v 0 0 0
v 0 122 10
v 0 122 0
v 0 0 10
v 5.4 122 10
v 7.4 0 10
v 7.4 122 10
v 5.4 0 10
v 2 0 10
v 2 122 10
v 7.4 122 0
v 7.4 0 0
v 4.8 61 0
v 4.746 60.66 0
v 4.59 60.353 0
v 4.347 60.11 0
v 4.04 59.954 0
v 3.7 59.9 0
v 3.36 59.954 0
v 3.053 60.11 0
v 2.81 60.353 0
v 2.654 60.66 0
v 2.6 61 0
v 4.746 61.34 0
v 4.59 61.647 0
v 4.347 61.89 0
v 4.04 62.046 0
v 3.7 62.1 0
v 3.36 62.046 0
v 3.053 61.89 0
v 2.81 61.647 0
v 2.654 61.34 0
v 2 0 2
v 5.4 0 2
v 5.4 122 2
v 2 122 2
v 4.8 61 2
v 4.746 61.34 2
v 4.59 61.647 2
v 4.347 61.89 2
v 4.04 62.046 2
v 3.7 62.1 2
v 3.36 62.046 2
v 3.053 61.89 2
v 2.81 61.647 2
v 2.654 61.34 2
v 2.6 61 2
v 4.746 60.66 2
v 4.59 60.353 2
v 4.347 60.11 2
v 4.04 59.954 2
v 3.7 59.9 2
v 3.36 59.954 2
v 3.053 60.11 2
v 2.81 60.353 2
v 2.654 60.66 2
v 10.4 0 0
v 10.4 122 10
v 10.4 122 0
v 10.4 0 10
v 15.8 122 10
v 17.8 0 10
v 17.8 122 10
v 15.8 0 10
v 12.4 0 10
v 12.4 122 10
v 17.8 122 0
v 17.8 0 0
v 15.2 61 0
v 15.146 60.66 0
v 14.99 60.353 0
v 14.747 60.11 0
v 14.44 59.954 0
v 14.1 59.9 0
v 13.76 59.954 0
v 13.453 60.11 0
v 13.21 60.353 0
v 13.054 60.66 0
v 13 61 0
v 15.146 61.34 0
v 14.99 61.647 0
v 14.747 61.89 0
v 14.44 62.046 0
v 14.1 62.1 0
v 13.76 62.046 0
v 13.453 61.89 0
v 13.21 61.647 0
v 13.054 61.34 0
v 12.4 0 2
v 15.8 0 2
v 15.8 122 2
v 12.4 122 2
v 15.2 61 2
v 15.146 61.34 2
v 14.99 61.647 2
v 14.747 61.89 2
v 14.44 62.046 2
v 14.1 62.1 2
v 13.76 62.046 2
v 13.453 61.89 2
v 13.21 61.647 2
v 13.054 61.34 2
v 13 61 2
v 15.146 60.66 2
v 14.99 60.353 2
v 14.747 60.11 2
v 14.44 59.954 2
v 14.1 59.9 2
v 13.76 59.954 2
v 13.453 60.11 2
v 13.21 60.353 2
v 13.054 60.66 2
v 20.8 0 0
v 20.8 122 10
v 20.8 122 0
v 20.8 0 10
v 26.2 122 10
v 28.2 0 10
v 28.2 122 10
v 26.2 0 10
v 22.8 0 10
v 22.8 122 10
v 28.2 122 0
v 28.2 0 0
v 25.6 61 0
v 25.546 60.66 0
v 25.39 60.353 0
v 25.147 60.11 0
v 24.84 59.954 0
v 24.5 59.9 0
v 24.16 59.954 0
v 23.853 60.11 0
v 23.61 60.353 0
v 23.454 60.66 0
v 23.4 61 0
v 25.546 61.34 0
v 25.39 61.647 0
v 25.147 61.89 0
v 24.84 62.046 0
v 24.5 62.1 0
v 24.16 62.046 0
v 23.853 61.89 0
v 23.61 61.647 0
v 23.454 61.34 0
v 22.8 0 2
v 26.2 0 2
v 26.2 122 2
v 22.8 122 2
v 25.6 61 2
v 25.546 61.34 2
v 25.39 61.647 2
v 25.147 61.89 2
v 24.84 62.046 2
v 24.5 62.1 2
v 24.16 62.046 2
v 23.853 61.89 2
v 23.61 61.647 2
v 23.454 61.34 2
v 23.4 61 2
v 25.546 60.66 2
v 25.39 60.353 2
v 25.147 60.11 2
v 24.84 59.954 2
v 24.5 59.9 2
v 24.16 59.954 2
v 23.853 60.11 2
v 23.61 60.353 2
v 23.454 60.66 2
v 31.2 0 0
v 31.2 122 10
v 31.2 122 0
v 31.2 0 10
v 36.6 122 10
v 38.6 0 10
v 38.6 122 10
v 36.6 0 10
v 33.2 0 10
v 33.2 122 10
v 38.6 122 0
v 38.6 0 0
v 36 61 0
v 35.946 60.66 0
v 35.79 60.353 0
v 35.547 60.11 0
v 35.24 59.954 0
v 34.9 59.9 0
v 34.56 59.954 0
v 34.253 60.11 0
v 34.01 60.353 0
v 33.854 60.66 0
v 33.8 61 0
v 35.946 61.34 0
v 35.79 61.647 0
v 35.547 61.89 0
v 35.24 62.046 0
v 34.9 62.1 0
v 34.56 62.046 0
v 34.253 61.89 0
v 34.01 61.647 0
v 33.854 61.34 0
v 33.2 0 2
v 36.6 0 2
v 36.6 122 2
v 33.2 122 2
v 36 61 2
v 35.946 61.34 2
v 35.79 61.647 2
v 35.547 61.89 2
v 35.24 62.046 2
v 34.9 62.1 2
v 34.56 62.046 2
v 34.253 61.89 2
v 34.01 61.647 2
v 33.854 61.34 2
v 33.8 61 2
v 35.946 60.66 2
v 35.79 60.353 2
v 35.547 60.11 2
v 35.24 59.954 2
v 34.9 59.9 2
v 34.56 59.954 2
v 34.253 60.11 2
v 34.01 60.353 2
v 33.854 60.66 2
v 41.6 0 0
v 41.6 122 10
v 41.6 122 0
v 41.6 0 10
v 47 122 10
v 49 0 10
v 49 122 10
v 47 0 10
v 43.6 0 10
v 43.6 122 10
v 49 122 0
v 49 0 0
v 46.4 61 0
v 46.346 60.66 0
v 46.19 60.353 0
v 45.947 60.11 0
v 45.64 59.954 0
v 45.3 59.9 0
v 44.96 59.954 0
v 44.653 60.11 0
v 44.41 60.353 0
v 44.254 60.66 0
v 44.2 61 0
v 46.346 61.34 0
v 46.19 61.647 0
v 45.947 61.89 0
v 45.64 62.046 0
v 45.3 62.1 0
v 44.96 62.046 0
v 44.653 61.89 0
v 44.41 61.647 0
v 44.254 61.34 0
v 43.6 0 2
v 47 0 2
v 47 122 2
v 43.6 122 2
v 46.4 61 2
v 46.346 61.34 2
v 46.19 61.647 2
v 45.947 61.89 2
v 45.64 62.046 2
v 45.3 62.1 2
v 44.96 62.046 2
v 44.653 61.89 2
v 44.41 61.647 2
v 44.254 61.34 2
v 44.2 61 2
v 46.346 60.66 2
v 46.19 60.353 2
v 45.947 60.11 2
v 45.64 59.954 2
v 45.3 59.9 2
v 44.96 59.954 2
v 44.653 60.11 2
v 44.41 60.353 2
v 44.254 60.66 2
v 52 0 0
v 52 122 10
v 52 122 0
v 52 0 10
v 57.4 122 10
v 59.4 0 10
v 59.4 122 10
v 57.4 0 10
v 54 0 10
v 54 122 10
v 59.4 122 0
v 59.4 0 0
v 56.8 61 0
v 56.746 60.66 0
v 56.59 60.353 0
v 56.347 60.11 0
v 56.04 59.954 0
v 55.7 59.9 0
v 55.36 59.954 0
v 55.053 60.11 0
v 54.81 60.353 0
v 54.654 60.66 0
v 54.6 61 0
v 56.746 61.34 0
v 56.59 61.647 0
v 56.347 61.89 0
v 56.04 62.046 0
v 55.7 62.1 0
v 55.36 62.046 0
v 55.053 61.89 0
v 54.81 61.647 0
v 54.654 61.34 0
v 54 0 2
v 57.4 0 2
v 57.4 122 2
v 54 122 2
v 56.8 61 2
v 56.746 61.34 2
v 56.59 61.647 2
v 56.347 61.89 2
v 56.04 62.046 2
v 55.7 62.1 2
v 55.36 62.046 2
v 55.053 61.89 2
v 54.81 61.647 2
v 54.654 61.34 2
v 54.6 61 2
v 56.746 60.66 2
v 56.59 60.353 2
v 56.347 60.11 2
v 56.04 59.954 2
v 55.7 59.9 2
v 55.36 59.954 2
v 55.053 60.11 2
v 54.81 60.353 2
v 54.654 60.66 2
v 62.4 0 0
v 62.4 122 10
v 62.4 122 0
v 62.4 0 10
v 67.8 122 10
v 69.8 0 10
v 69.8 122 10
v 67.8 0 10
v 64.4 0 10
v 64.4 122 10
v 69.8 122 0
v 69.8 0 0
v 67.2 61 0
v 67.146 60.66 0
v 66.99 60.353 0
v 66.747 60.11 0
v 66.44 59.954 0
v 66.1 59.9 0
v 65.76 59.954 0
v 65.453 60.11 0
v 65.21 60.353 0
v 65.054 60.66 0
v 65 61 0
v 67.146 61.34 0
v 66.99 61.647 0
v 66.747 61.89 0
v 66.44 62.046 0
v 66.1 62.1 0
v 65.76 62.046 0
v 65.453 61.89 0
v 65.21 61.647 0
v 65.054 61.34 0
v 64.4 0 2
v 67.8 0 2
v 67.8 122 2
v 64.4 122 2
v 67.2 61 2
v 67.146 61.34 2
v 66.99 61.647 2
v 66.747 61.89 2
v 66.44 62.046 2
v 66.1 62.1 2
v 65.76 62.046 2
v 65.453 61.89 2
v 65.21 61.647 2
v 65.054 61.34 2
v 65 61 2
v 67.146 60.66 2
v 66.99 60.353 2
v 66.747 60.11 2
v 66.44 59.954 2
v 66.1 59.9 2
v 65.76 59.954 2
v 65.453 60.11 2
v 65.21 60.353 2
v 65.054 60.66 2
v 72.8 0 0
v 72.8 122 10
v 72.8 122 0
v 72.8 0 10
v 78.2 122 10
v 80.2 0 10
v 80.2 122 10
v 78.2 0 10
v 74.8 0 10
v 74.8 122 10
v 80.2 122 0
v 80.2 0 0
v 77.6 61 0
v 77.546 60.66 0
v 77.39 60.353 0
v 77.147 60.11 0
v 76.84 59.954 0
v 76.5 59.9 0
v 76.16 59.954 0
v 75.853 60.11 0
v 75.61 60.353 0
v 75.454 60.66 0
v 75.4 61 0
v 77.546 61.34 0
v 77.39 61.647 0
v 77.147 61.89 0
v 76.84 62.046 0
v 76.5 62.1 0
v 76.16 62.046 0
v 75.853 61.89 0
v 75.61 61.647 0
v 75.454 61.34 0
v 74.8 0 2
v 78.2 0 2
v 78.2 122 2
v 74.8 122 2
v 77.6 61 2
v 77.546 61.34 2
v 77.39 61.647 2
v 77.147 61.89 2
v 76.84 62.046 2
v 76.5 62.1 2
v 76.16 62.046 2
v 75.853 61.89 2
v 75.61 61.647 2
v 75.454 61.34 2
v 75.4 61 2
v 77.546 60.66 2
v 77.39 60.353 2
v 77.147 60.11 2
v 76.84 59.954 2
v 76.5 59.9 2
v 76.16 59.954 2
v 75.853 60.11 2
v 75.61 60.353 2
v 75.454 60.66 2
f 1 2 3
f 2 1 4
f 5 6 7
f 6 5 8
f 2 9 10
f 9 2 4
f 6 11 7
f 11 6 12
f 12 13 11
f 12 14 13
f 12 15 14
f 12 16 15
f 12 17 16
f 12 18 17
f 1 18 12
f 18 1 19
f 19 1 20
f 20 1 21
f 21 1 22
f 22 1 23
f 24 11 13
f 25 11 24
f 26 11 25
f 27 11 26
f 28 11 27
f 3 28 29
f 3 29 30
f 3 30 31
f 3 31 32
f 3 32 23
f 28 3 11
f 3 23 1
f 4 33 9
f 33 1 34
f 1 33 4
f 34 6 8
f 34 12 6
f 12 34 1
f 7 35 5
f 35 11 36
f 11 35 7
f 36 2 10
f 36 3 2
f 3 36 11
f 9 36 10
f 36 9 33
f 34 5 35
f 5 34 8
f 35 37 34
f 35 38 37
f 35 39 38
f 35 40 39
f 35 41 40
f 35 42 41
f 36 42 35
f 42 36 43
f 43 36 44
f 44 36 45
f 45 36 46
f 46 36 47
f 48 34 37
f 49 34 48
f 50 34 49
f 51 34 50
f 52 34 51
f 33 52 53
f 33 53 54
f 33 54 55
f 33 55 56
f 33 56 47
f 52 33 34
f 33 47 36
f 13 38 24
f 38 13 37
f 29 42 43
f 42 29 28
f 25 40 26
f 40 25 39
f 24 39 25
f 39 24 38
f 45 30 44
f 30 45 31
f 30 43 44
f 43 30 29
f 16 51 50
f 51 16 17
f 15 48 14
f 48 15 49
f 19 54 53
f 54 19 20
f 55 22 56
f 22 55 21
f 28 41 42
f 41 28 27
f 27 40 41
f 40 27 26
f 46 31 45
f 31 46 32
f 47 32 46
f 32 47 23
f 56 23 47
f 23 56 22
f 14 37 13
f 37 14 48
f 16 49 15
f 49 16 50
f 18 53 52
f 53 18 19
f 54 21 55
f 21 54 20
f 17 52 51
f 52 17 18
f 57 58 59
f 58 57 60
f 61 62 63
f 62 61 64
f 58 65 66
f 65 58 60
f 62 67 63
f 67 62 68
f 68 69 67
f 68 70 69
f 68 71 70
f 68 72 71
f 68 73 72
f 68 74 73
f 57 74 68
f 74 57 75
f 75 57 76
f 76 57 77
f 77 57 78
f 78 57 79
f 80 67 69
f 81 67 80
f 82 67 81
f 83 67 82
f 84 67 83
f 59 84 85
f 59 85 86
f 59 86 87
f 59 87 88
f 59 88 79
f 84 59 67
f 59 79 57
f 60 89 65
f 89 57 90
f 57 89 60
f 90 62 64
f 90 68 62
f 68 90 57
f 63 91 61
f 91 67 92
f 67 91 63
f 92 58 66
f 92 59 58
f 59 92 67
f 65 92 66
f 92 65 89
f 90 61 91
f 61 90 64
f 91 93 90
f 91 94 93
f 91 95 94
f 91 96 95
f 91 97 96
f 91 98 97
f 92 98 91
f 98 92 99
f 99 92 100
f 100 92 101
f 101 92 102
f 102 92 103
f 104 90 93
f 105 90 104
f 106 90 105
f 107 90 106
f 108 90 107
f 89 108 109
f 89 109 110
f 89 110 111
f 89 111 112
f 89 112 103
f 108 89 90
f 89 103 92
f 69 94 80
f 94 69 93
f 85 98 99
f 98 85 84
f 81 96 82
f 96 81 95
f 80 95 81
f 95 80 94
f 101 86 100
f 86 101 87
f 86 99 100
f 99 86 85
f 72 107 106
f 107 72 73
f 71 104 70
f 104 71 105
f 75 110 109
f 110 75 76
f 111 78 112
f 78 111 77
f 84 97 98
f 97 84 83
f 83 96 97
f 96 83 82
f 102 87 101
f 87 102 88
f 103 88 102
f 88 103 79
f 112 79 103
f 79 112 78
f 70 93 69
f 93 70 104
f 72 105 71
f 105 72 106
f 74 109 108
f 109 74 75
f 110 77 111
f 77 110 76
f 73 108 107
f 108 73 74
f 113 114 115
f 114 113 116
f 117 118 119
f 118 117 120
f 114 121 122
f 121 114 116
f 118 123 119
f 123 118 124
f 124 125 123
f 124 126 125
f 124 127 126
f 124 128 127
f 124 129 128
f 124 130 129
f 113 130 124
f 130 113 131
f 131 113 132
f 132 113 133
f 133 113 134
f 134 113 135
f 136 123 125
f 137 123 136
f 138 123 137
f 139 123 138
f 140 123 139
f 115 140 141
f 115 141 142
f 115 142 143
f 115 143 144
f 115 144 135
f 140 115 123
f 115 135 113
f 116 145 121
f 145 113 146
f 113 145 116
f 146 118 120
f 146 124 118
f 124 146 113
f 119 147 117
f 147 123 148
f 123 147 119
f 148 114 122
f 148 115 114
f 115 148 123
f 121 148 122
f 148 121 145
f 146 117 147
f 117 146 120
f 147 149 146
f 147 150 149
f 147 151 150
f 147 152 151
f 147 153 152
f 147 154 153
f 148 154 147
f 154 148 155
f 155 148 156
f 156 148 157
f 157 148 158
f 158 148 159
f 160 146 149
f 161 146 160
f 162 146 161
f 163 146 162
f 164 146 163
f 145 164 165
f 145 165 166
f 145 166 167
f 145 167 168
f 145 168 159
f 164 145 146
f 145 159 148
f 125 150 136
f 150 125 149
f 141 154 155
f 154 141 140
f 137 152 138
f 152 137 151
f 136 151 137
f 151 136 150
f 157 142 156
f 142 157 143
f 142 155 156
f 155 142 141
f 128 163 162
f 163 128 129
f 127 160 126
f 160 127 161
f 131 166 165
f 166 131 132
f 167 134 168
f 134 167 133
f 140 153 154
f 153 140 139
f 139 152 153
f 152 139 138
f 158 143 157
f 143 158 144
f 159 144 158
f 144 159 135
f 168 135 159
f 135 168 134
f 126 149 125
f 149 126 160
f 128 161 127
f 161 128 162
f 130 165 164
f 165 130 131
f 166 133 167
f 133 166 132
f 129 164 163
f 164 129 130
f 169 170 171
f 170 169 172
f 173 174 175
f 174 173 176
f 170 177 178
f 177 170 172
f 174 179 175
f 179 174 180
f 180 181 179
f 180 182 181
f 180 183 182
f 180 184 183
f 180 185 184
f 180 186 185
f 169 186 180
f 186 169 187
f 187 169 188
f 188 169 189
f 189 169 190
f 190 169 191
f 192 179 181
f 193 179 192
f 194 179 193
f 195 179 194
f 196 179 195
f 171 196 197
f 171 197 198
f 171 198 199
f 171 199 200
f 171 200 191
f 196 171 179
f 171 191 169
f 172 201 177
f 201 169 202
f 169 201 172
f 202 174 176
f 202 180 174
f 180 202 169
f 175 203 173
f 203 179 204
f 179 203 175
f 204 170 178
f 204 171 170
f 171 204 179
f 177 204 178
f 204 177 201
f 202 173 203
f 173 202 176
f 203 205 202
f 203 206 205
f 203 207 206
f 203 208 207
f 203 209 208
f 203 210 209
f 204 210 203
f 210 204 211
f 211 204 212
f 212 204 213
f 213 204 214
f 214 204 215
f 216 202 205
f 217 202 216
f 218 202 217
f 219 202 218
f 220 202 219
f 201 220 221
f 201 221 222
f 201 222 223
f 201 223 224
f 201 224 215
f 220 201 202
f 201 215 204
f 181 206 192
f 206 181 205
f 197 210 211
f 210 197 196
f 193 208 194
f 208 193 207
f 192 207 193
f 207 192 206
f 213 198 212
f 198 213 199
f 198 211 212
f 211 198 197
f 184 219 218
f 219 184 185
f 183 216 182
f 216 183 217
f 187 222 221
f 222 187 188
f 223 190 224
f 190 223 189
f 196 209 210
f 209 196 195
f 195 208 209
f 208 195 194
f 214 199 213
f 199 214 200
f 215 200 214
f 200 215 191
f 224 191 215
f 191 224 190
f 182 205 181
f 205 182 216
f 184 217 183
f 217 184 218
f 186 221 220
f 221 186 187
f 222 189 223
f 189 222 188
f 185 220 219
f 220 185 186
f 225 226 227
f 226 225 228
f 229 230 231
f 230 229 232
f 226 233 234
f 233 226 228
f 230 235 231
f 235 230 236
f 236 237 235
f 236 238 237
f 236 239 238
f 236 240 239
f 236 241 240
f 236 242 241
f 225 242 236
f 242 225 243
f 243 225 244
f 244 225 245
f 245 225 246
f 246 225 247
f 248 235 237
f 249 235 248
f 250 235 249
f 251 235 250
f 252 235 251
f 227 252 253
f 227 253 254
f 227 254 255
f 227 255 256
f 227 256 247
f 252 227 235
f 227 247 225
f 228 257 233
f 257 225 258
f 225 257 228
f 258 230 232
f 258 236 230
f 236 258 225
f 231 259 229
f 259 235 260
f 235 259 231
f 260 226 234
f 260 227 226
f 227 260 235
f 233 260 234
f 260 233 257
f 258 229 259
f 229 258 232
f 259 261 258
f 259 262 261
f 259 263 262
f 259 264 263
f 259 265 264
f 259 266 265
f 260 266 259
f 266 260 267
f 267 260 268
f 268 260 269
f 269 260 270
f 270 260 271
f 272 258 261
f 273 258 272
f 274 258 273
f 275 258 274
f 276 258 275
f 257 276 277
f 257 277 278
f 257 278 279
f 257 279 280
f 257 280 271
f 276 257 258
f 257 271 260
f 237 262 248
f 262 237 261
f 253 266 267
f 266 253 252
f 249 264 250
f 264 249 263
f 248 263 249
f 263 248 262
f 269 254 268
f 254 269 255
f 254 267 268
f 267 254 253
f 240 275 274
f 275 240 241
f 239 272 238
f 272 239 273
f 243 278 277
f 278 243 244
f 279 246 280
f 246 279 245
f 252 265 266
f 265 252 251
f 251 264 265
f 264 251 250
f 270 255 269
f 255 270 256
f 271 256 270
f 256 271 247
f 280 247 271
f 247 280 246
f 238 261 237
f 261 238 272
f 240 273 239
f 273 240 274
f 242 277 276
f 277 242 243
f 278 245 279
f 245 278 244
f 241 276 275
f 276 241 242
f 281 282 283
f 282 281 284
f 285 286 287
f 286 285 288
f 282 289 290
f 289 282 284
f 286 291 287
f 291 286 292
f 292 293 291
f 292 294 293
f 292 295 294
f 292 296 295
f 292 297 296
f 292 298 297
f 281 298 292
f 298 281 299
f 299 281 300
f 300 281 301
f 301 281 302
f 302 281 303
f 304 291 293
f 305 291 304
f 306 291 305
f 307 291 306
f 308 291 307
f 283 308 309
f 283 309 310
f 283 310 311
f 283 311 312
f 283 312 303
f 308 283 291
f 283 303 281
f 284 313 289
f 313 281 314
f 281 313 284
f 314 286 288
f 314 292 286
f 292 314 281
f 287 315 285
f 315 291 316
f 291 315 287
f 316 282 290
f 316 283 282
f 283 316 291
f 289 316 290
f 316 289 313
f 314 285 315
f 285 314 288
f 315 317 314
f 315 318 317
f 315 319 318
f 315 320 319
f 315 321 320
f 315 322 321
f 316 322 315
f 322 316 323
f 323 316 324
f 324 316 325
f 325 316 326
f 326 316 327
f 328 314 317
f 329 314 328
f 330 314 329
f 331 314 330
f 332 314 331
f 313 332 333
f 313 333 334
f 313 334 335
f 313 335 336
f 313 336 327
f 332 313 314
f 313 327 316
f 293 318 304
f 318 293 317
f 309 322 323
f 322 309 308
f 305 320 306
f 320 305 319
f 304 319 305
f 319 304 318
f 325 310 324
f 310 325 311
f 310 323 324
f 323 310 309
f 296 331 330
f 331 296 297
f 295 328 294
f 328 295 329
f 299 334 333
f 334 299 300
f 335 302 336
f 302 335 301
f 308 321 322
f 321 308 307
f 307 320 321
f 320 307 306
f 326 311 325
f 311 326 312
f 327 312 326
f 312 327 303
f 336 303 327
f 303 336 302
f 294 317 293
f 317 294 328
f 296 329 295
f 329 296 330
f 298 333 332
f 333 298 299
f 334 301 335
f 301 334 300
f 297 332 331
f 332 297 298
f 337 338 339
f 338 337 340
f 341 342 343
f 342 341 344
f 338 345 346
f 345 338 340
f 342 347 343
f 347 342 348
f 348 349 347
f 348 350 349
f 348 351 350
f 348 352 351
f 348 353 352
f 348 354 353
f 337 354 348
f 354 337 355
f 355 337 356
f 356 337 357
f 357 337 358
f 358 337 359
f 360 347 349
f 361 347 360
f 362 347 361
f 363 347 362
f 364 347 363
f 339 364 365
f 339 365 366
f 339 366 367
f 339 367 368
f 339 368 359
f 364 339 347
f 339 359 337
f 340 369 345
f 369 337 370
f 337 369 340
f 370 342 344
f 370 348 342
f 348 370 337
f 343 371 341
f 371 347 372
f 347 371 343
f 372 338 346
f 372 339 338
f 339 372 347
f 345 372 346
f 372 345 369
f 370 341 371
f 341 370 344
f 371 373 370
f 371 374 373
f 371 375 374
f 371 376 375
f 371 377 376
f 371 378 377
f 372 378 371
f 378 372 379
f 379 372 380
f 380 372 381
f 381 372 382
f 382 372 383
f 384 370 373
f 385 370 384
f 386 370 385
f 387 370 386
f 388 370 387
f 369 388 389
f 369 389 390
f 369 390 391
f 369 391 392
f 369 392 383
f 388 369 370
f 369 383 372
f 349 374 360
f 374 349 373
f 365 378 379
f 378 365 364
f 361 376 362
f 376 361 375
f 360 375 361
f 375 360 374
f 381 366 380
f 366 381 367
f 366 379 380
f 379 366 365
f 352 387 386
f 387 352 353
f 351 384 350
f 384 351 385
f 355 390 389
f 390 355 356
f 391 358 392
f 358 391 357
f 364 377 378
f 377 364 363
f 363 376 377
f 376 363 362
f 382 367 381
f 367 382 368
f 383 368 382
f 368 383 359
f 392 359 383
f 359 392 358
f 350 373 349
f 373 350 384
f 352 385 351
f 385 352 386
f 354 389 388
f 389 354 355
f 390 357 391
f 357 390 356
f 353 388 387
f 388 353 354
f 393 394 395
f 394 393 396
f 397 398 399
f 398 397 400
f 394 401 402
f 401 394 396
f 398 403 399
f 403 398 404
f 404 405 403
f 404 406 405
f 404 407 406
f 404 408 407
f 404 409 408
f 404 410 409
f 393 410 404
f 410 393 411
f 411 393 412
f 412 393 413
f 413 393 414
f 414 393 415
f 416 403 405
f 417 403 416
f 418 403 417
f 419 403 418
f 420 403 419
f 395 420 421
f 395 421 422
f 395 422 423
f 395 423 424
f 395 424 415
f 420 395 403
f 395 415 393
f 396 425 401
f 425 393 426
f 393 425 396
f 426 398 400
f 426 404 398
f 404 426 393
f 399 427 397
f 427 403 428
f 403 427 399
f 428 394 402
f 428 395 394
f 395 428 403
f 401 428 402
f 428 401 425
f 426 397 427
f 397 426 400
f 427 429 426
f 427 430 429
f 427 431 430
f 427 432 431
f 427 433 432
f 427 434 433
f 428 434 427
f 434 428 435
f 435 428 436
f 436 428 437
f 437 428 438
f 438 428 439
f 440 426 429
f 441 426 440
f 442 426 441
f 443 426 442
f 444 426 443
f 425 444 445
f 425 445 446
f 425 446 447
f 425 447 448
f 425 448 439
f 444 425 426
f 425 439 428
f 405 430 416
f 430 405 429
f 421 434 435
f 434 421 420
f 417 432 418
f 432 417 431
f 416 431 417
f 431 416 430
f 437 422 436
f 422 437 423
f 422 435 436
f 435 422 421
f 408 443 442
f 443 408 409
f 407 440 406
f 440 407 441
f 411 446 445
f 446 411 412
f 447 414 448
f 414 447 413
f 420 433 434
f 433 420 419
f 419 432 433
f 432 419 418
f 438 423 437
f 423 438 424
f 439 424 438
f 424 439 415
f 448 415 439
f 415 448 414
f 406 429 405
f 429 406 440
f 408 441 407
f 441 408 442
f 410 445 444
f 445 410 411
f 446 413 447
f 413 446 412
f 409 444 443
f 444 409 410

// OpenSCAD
// ============================================================
// PRINT_LAYOUT_COMPLETO.scad
// Layout de referência — Ender 3 (200×200mm)
// ============================================================
//
// ⚠️  ARQUIVOS SEPARADOS POR FILTRO (recomendado):
//   Use os arquivos PRINT_*.scad individuais para imprimir.
//   Cada arquivo tem as peças distribuídas na mesa, prontas
//   para exportar STL direto no OpenSCAD (F6 → F7).
//
// | Arquivo               | Peças                   | Mesa       | Tempo  |
// |-----------------------|-------------------------|------------|--------|
// | PRINT_TELA_CARVAO.scad| 8× trilho 3.4mm         | 83×122mm   | ~50min |
// | PRINT_MANTA_G3.scad   | 4× trilho 12mm          | 76×122mm   | ~1h    |
// | PRINT_GM_CABINE.scad  | 4× trilho 21mm          | 112×122mm  | ~1h20  |
// | PRINT_HEPA.scad       | 4× trilho 26mm          | 132×122mm  | ~1h30  |
// | PRINT_WEGA.scad       | 2+2× trilho 46mm        | 106×122mm  | ~2h    |
// | PRINT_ACESSORIOS.scad | 6× puxadores + 6× travas| 200×33mm   | ~45min |
// | PRINT_SNAP_CLIPS.scad | 16× snap clips          | 92×48mm    | ~2h    |
// | PRINT_VEDACAO.scad    | 8× vedação segmentos    | 122×72mm   | ~1h30  |
// | FLANGE_150mm.scad     | Flange 150mm            | 180×180mm  | ~3h    |
// | FLANGE_70mm.scad      | Flange 70mm             | 100×100mm  | ~1h30  |
// |-----------------------|-------------------------|------------|--------|
// | TOTAL                 | 62 peças                | 11 prints  | ~15h30 |
//
// CONFIGURAÇÕES DE IMPRESSÃO:
//   Material: PLA ou PETG
//   Layer: 0.2mm
//   Infill: 40% (trilhos) / 80% (clips)
//   Walls: 3 perímetros
//   Suporte: NÃO necessário (orientação otimizada)
//
// ============================================================
//
// Este arquivo mantém os batches consolidados para
// preview/referência. Para impressão use os PRINT_*.scad.
//
// ============================================================

// Importar módulos dos arquivos principais
use <TRILHO_FILTRO.scad>
use <SNAP_TAMPA.scad>

// Espaçamento entre peças na cama
gap = 3; // 3mm entre peças

// Bed size
bed_x = 200;
bed_y = 200;

// ============================================================
// SUMÁRIO DE BATCHES (10 impressões totais)
// ============================================================
//
// | Batch | Peças                    | Tamanho     | Tempo  |
// |-------|--------------------------|-------------|--------|
// | 1     | 8× trilho fino (3.4mm)   | 80×122mm    | ~50min |
// | 2     | 4× trilho G3 (12mm)      | 73×122mm    | ~1h    |
// | 3     | 4× trilho GM (21mm)      | 109×122mm   | ~1h20  |
// | 4     | 4× trilho HEPA (26mm)    | 129×122mm   | ~1h30  |
// | 5A    | 2× trilho Wega A (46mm)  | 103×122mm   | ~1h    |
// | 5B    | 2× trilho Wega B (46mm)  | 103×122mm   | ~1h    |
// | 6     | 6× puxadores + 6× travas | 200×33mm    | ~45min |
// | 7     | 16× snap clips           | 100×130mm   | ~2h    |
// | 8     | 8× vedação segmentos     | 130×65mm    | ~1h30  |
// | 9     | Flange 150mm             | 180×180mm   | ~3h    |
// | 10    | Flange 70mm              | 100×100mm   | ~1h30  |
// |-------|--------------------------|-------------|--------|
// | TOTAL | 55 peças                 | 10 prints   | ~15h   |
//
// ============================================================

// ============================================================
// LAYOUT CORRIGIDO: Peças lado a lado em X, comp em Y
// Cada metade: largura × 122mm comp.  Y=122mm < 200mm ✓
// ============================================================

// ============================================================
// BATCH 1: Trilhos finos — Tela Carvão (canal 3.4mm)
// 8 metades (4×A + 4×B) lado a lado em X
// Peça: ~7.4mm larg × 122mm comp → cabe: 59×122mm
// Tempo estimado: ~50min
// ============================================================

module batch_1_tela_carvao() {
    largura = 3.4 + 2*2; // canal + 2× parede = 7.4mm
    
    // 4× Metade A + 4× Metade B — tudo em uma fileira X
    for (i = [0:3]) {
        translate([i * (largura + gap), 0, 0])
            trilho_metade_a(3.4);
    }
    for (i = [0:3]) {
        translate([(4 + i) * (largura + gap), 0, 0])
            trilho_metade_b(3.4);
    }
    
    // Tamanho total: ~80mm × 122mm ✓
}

// ============================================================
// BATCH 2: Trilhos Manta G3 (canal 12mm)
// 4 metades (2×A + 2×B) lado a lado em X
// Peça: ~16mm larg × 122mm comp → cabe: 73mm × 122mm
// Tempo estimado: ~1h
// ============================================================

module batch_2_manta_g3() {
    largura = 12 + 2*2; // 16mm
    
    for (i = [0:1]) {
        translate([i * (largura + gap), 0, 0])
            trilho_metade_a(12);
    }
    for (i = [0:1]) {
        translate([(2 + i) * (largura + gap), 0, 0])
            trilho_metade_b(12);
    }
    
    // Tamanho total: ~73mm × 122mm ✓
}

// ============================================================
// BATCH 3: Trilhos GM Cabine (canal 21mm)
// 4 metades (2×A + 2×B) lado a lado em X
// Peça: ~25mm larg × 122mm comp → cabe: 109mm × 122mm
// Tempo estimado: ~1h20
// ============================================================

module batch_3_gm_cabine() {
    largura = 21 + 2*2; // 25mm
    
    for (i = [0:1]) {
        translate([i * (largura + gap), 0, 0])
            trilho_metade_a(21);
    }
    for (i = [0:1]) {
        translate([(2 + i) * (largura + gap), 0, 0])
            trilho_metade_b(21);
    }
    
    // Tamanho total: ~109mm × 122mm ✓
}

// ============================================================
// BATCH 4: Trilhos HEPA (canal 26mm)
// 4 metades (2×A + 2×B) lado a lado em X
// Peça: ~30mm larg × 122mm comp → cabe: 129mm × 122mm
// Tempo estimado: ~1h30
// ============================================================

module batch_4_hepa() {
    largura = 26 + 2*2; // 30mm
    
    for (i = [0:1]) {
        translate([i * (largura + gap), 0, 0])
            trilho_metade_a(26);
    }
    for (i = [0:1]) {
        translate([(2 + i) * (largura + gap), 0, 0])
            trilho_metade_b(26);
    }
    
    // Tamanho total: ~129mm × 122mm ✓
}

// ============================================================
// BATCH 5A: Trilhos Wega Motor (canal 46mm) — Metades A
// 2 metades A lado a lado
// Peça: ~50mm larg × 122mm comp → cabe: 103mm × 122mm
// Tempo estimado: ~1h
// ============================================================

module batch_5a_wega() {
    largura = 46 + 2*2; // 50mm
    
    for (i = [0:1]) {
        translate([i * (largura + gap), 0, 0])
            trilho_metade_a(46);
    }
    
    // Tamanho total: ~103mm × 122mm ✓
}

// ============================================================
// BATCH 5B: Trilhos Wega Motor (canal 46mm) — Metades B
// 2 metades B lado a lado
// Peça: ~50mm larg × 122mm comp → cabe: 103mm × 122mm
// Tempo estimado: ~1h
// ============================================================

module batch_5b_wega() {
    largura = 46 + 2*2; // 50mm
    
    for (i = [0:1]) {
        translate([i * (largura + gap), 0, 0])
            trilho_metade_b(46);
    }
    
    // Tamanho total: ~103mm × 122mm ✓
}

// ============================================================
// BATCH 6: Acessórios — Puxadores + Travas
// 6× puxadores + 6× travas = 12 peças pequenas
// Tempo estimado: ~45min
// ============================================================

module batch_6_acessorios() {
    // 3 puxadores por fileira (30mm cada + gap)
    for (i = [0:2]) {
        translate([i * 35, 0, 0])
            puxador();
    }
    for (i = [0:2]) {
        translate([i * 35, 25, 0])
            puxador();
    }
    
    // 6 travas ao lado
    for (i = [0:5]) {
        translate([110 + i * 15, 0, 0])
            trava();
    }
    
    // Tamanho total: ~200mm × 33mm ✓
}

// ============================================================
// BATCH COMBO: Batches 2+3 juntos (Manta + GM)
// 8 metades no total — lado a lado em X: 185mm × 122mm
// Tempo estimado: ~2h
// ============================================================

module batch_combo_manta_gm() {
    largura_g3 = 12 + 2*2;  // 16mm
    largura_gm = 21 + 2*2;  // 25mm
    
    // G3: 2A + 2B
    for (i = [0:1]) {
        translate([i * (largura_g3 + gap), 0, 0])
            trilho_metade_a(12);
    }
    for (i = [0:1]) {
        translate([(2 + i) * (largura_g3 + gap), 0, 0])
            trilho_metade_b(12);
    }
    
    // GM: 2A + 2B — offset em X
    offset_x = 4 * (largura_g3 + gap) + 5;
    for (i = [0:1]) {
        translate([offset_x + i * (largura_gm + gap), 0, 0])
            trilho_metade_a(21);
    }
    for (i = [0:1]) {
        translate([offset_x + (2 + i) * (largura_gm + gap), 0, 0])
            trilho_metade_b(21);
    }
    
    // Tamanho total: ~185mm × 122mm ✓
}

// ============================================================
// BATCH COMBO: Batches 4+5A juntos (HEPA + Wega×A)
// 4 HEPA + 2 Wega A — max 6 peças: ~192mm × 122mm
// Tempo estimado: ~2h30
// ============================================================

module batch_combo_hepa_wega_a() {
    largura_hepa = 26 + 2*2; // 30mm
    largura_wega = 46 + 2*2; // 50mm
    
    // HEPA: 2A + 2B
    for (i = [0:1]) {
        translate([i * (largura_hepa + gap), 0, 0])
            trilho_metade_a(26);
    }
    for (i = [0:1]) {
        translate([(2 + i) * (largura_hepa + gap), 0, 0])
            trilho_metade_b(26);
    }
    
    // Wega A: 2 peças após HEPA
    offset_x = 4 * (largura_hepa + gap) + 5;
    for (i = [0:1]) {
        translate([offset_x + i * (largura_wega + gap), 0, 0])
            trilho_metade_a(46);
    }
    
    // Tamanho total: ~192mm × 122mm ✓ (apertado, cabe)
}

// ============================================================
// VISUALIZAÇÃO — Mostrar todos os batches side by side
// (Apenas para conferência visual, não para impressão)
// ============================================================

module preview_all_batches() {
    color("DodgerBlue") translate([0, 0, 0])
        batch_1_tela_carvao();
    
    color("LimeGreen") translate([0, 135, 0])
        batch_2_manta_g3();
    
    color("Gold") translate([0, 270, 0])
        batch_3_gm_cabine();
    
    color("DeepSkyBlue") translate([0, 405, 0])
        batch_4_hepa();
    
    color("Tomato") translate([0, 540, 0])
        batch_5a_wega();
    
    color("OrangeRed") translate([0, 675, 0])
        batch_5b_wega();
    
    color("Orange") translate([0, 810, 0])
        batch_6_acessorios();
    
    color("Magenta") translate([0, 945, 0])
        batch_7_snap_clips();
    
    color("Cyan") translate([0, 1080, 0])
        batch_8_vedacao();
}

// ============================================================
// BATCH 7: Snap-fit Clips — 16 unidades
// 4 fileiras × 4 colunas (20mm × 30mm cada + gap)
// Tamanho total: ~100mm × 130mm ✓
// Tempo estimado: ~2h
// ORIENTAÇÃO: Clip deitado com ponte na mesa (Z=0)
// ============================================================

module batch_7_snap_clips() {
    clip_w = 20;    // largura do clip (X)
    clip_d = 8.3;   // profundidade total Y (mdf+folga+2*parede = 3+0.3+2*2 = 7.3 + ganchos ~1mm)
    altura_ext = 30; // altura perna externa
    parede = 2;      // espessura ponte
    
    for (row = [0:3]) {
        for (col = [0:3]) {
            translate([col * (clip_w + gap), row * (clip_d + gap), 0])
            // Orientação para impressão: pernas para cima, ponte na mesa
            // Geometria original: Z[-30, +2], Y[~-1.2, ~8.3]
            // rotate 180° (XZ): Z→[-2,+30], Y→[-8.3,+1.2]
            // translate Y+clip_d, Z+parede: Y[0, 9.5], Z[0, 32]
            translate([0, clip_d, parede])
            rotate([180, 0, 0])
                snap_clip_tampa();
        }
    }
    
    // Dimensão cada clip: 20mm × ~9mm × 32mm (X×Y×Z)
    // Layout: 4col × 4row
    // Tamanho total: 4×(20+3)=92mm × 4×(9+3)=48mm ✓ (bem compacto!)
}

// ============================================================
// BATCH 8: Vedação Divisória — 8 segmentos
// 4 horizontais (122mm) + 4 verticais (120mm)
// Deitados lado a lado em Y
// Tamanho total: ~130mm × 65mm ✓
// Tempo estimado: ~1h30
// ============================================================

module batch_8_vedacao() {
    frame_w = 6;
    
    // 4 segmentos horizontais (122mm cada, deitados em Y)
    for (i = [0:1]) {
        translate([0, i * (frame_w + gap), 0])
            vedacao_segmento_h_a();
    }
    for (i = [0:1]) {
        translate([0, (2 + i) * (frame_w + gap), 0])
            vedacao_segmento_h_b();
    }
    
    // 4 segmentos verticais (120mm cada, rotacionados)
    for (i = [0:1]) {
        translate([0, (4 + i) * (frame_w + gap), 0])
        rotate([0, 0, -90])
        translate([-120, 0, 0])
            vedacao_segmento_v_a();
    }
    for (i = [0:1]) {
        translate([0, (6 + i) * (frame_w + gap), 0])
        rotate([0, 0, -90])
        translate([-120, 0, 0])
            vedacao_segmento_v_b();
    }
    
    // Tamanho total: 122mm × 8×(6+3) = 122mm × 72mm ✓
}

// ============================================================
// RENDER — Descomentar a linha desejada
// ============================================================

// === TRILHOS ===
batch_1_tela_carvao();      // 8× trilhos finos (~50min)
// batch_2_manta_g3();      // 4× trilhos G3 (~1h)
// batch_3_gm_cabine();     // 4× trilhos GM (~1h20)
// batch_4_hepa();          // 4× trilhos HEPA (~1h30)
// batch_5a_wega();         // 2× trilhos Wega A (~1h)
// batch_5b_wega();         // 2× trilhos Wega B (~1h)
// batch_6_acessorios();    // 6× puxadores + 6× travas (~45min)

// === SNAP CLIPS + VEDAÇÃO ===
// batch_7_snap_clips();    // 16× snap clips (~2h)
// batch_8_vedacao();       // 8× segmentos vedação (~1h30)

// === BATCHES COMBINADOS ===
// batch_combo_manta_gm();     // G3 + GM juntos (~2h)
// batch_combo_hepa_wega_a();  // HEPA + Wega A juntos (~2h30)

// === VISUALIZAÇÃO ===
// preview_all_batches();

// ============================================================
// NOTA: FLANGES (180×180 e 100×100mm)
// ============================================================
// As flanges são impressas separadamente usando seus arquivos:
//   - FLANGE_150mm.scad → 180×180mm ✓ (cabe em 200×200)
//   - FLANGE_70mm.scad  → 100×100mm ✓ (cabe em 200×200)
// Basta abrir o arquivo .scad, F6 para renderizar, F7 para exportar STL.
// ============================================================

// ============================================================
// RESUMO COMPLETO — TODAS AS PEÇAS 3D
// ============================================================
//
// | Batch | Peças                    | Qtd | Tempo  | Tamanho      |
// |-------|--------------------------|-----|--------|--------------|
// | 1     | Trilhos Tela Carvão      |  8  | ~50min | 80×122mm  ✓ |
// | 2     | Trilhos Manta G3         |  4  | ~1h    | 73×122mm  ✓ |
// | 3     | Trilhos GM Cabine        |  4  | ~1h20  | 109×122mm ✓ |
// | 4     | Trilhos HEPA             |  4  | ~1h30  | 129×122mm ✓ |
// | 5A    | Trilhos Wega (metade A)  |  2  | ~1h    | 103×122mm ✓ |
// | 5B    | Trilhos Wega (metade B)  |  2  | ~1h    | 103×122mm ✓ |
// | 6     | Puxadores + Travas       | 12  | ~45min | 200×33mm  ✓ |
// | 7     | Snap Clips (tampa/base)  | 16  | ~2h    | 100×130mm ✓ |
// | 8     | Vedação Divisória (opt)  |  8  | ~1h30  | 130×65mm  ✓ |
// | 9     | Flange 150mm             |  1  | ~3h    | 180×180mm ✓ |
// | 10    | Flange 70mm              |  1  | ~1h30  | 100×100mm ✓ |
// |-------|--------------------------|-----|--------|--------------|
// | TOTAL |                          | 62  | ~15h30 |              |
//
// TODAS AS PEÇAS CABEM NA MESA 200×200mm ✓
//
// MATERIAL ESTIMADO:
//   PLA/PETG: ~150g (trilhos 80g + clips 30g + flanges 40g)
//
// ============================================================
